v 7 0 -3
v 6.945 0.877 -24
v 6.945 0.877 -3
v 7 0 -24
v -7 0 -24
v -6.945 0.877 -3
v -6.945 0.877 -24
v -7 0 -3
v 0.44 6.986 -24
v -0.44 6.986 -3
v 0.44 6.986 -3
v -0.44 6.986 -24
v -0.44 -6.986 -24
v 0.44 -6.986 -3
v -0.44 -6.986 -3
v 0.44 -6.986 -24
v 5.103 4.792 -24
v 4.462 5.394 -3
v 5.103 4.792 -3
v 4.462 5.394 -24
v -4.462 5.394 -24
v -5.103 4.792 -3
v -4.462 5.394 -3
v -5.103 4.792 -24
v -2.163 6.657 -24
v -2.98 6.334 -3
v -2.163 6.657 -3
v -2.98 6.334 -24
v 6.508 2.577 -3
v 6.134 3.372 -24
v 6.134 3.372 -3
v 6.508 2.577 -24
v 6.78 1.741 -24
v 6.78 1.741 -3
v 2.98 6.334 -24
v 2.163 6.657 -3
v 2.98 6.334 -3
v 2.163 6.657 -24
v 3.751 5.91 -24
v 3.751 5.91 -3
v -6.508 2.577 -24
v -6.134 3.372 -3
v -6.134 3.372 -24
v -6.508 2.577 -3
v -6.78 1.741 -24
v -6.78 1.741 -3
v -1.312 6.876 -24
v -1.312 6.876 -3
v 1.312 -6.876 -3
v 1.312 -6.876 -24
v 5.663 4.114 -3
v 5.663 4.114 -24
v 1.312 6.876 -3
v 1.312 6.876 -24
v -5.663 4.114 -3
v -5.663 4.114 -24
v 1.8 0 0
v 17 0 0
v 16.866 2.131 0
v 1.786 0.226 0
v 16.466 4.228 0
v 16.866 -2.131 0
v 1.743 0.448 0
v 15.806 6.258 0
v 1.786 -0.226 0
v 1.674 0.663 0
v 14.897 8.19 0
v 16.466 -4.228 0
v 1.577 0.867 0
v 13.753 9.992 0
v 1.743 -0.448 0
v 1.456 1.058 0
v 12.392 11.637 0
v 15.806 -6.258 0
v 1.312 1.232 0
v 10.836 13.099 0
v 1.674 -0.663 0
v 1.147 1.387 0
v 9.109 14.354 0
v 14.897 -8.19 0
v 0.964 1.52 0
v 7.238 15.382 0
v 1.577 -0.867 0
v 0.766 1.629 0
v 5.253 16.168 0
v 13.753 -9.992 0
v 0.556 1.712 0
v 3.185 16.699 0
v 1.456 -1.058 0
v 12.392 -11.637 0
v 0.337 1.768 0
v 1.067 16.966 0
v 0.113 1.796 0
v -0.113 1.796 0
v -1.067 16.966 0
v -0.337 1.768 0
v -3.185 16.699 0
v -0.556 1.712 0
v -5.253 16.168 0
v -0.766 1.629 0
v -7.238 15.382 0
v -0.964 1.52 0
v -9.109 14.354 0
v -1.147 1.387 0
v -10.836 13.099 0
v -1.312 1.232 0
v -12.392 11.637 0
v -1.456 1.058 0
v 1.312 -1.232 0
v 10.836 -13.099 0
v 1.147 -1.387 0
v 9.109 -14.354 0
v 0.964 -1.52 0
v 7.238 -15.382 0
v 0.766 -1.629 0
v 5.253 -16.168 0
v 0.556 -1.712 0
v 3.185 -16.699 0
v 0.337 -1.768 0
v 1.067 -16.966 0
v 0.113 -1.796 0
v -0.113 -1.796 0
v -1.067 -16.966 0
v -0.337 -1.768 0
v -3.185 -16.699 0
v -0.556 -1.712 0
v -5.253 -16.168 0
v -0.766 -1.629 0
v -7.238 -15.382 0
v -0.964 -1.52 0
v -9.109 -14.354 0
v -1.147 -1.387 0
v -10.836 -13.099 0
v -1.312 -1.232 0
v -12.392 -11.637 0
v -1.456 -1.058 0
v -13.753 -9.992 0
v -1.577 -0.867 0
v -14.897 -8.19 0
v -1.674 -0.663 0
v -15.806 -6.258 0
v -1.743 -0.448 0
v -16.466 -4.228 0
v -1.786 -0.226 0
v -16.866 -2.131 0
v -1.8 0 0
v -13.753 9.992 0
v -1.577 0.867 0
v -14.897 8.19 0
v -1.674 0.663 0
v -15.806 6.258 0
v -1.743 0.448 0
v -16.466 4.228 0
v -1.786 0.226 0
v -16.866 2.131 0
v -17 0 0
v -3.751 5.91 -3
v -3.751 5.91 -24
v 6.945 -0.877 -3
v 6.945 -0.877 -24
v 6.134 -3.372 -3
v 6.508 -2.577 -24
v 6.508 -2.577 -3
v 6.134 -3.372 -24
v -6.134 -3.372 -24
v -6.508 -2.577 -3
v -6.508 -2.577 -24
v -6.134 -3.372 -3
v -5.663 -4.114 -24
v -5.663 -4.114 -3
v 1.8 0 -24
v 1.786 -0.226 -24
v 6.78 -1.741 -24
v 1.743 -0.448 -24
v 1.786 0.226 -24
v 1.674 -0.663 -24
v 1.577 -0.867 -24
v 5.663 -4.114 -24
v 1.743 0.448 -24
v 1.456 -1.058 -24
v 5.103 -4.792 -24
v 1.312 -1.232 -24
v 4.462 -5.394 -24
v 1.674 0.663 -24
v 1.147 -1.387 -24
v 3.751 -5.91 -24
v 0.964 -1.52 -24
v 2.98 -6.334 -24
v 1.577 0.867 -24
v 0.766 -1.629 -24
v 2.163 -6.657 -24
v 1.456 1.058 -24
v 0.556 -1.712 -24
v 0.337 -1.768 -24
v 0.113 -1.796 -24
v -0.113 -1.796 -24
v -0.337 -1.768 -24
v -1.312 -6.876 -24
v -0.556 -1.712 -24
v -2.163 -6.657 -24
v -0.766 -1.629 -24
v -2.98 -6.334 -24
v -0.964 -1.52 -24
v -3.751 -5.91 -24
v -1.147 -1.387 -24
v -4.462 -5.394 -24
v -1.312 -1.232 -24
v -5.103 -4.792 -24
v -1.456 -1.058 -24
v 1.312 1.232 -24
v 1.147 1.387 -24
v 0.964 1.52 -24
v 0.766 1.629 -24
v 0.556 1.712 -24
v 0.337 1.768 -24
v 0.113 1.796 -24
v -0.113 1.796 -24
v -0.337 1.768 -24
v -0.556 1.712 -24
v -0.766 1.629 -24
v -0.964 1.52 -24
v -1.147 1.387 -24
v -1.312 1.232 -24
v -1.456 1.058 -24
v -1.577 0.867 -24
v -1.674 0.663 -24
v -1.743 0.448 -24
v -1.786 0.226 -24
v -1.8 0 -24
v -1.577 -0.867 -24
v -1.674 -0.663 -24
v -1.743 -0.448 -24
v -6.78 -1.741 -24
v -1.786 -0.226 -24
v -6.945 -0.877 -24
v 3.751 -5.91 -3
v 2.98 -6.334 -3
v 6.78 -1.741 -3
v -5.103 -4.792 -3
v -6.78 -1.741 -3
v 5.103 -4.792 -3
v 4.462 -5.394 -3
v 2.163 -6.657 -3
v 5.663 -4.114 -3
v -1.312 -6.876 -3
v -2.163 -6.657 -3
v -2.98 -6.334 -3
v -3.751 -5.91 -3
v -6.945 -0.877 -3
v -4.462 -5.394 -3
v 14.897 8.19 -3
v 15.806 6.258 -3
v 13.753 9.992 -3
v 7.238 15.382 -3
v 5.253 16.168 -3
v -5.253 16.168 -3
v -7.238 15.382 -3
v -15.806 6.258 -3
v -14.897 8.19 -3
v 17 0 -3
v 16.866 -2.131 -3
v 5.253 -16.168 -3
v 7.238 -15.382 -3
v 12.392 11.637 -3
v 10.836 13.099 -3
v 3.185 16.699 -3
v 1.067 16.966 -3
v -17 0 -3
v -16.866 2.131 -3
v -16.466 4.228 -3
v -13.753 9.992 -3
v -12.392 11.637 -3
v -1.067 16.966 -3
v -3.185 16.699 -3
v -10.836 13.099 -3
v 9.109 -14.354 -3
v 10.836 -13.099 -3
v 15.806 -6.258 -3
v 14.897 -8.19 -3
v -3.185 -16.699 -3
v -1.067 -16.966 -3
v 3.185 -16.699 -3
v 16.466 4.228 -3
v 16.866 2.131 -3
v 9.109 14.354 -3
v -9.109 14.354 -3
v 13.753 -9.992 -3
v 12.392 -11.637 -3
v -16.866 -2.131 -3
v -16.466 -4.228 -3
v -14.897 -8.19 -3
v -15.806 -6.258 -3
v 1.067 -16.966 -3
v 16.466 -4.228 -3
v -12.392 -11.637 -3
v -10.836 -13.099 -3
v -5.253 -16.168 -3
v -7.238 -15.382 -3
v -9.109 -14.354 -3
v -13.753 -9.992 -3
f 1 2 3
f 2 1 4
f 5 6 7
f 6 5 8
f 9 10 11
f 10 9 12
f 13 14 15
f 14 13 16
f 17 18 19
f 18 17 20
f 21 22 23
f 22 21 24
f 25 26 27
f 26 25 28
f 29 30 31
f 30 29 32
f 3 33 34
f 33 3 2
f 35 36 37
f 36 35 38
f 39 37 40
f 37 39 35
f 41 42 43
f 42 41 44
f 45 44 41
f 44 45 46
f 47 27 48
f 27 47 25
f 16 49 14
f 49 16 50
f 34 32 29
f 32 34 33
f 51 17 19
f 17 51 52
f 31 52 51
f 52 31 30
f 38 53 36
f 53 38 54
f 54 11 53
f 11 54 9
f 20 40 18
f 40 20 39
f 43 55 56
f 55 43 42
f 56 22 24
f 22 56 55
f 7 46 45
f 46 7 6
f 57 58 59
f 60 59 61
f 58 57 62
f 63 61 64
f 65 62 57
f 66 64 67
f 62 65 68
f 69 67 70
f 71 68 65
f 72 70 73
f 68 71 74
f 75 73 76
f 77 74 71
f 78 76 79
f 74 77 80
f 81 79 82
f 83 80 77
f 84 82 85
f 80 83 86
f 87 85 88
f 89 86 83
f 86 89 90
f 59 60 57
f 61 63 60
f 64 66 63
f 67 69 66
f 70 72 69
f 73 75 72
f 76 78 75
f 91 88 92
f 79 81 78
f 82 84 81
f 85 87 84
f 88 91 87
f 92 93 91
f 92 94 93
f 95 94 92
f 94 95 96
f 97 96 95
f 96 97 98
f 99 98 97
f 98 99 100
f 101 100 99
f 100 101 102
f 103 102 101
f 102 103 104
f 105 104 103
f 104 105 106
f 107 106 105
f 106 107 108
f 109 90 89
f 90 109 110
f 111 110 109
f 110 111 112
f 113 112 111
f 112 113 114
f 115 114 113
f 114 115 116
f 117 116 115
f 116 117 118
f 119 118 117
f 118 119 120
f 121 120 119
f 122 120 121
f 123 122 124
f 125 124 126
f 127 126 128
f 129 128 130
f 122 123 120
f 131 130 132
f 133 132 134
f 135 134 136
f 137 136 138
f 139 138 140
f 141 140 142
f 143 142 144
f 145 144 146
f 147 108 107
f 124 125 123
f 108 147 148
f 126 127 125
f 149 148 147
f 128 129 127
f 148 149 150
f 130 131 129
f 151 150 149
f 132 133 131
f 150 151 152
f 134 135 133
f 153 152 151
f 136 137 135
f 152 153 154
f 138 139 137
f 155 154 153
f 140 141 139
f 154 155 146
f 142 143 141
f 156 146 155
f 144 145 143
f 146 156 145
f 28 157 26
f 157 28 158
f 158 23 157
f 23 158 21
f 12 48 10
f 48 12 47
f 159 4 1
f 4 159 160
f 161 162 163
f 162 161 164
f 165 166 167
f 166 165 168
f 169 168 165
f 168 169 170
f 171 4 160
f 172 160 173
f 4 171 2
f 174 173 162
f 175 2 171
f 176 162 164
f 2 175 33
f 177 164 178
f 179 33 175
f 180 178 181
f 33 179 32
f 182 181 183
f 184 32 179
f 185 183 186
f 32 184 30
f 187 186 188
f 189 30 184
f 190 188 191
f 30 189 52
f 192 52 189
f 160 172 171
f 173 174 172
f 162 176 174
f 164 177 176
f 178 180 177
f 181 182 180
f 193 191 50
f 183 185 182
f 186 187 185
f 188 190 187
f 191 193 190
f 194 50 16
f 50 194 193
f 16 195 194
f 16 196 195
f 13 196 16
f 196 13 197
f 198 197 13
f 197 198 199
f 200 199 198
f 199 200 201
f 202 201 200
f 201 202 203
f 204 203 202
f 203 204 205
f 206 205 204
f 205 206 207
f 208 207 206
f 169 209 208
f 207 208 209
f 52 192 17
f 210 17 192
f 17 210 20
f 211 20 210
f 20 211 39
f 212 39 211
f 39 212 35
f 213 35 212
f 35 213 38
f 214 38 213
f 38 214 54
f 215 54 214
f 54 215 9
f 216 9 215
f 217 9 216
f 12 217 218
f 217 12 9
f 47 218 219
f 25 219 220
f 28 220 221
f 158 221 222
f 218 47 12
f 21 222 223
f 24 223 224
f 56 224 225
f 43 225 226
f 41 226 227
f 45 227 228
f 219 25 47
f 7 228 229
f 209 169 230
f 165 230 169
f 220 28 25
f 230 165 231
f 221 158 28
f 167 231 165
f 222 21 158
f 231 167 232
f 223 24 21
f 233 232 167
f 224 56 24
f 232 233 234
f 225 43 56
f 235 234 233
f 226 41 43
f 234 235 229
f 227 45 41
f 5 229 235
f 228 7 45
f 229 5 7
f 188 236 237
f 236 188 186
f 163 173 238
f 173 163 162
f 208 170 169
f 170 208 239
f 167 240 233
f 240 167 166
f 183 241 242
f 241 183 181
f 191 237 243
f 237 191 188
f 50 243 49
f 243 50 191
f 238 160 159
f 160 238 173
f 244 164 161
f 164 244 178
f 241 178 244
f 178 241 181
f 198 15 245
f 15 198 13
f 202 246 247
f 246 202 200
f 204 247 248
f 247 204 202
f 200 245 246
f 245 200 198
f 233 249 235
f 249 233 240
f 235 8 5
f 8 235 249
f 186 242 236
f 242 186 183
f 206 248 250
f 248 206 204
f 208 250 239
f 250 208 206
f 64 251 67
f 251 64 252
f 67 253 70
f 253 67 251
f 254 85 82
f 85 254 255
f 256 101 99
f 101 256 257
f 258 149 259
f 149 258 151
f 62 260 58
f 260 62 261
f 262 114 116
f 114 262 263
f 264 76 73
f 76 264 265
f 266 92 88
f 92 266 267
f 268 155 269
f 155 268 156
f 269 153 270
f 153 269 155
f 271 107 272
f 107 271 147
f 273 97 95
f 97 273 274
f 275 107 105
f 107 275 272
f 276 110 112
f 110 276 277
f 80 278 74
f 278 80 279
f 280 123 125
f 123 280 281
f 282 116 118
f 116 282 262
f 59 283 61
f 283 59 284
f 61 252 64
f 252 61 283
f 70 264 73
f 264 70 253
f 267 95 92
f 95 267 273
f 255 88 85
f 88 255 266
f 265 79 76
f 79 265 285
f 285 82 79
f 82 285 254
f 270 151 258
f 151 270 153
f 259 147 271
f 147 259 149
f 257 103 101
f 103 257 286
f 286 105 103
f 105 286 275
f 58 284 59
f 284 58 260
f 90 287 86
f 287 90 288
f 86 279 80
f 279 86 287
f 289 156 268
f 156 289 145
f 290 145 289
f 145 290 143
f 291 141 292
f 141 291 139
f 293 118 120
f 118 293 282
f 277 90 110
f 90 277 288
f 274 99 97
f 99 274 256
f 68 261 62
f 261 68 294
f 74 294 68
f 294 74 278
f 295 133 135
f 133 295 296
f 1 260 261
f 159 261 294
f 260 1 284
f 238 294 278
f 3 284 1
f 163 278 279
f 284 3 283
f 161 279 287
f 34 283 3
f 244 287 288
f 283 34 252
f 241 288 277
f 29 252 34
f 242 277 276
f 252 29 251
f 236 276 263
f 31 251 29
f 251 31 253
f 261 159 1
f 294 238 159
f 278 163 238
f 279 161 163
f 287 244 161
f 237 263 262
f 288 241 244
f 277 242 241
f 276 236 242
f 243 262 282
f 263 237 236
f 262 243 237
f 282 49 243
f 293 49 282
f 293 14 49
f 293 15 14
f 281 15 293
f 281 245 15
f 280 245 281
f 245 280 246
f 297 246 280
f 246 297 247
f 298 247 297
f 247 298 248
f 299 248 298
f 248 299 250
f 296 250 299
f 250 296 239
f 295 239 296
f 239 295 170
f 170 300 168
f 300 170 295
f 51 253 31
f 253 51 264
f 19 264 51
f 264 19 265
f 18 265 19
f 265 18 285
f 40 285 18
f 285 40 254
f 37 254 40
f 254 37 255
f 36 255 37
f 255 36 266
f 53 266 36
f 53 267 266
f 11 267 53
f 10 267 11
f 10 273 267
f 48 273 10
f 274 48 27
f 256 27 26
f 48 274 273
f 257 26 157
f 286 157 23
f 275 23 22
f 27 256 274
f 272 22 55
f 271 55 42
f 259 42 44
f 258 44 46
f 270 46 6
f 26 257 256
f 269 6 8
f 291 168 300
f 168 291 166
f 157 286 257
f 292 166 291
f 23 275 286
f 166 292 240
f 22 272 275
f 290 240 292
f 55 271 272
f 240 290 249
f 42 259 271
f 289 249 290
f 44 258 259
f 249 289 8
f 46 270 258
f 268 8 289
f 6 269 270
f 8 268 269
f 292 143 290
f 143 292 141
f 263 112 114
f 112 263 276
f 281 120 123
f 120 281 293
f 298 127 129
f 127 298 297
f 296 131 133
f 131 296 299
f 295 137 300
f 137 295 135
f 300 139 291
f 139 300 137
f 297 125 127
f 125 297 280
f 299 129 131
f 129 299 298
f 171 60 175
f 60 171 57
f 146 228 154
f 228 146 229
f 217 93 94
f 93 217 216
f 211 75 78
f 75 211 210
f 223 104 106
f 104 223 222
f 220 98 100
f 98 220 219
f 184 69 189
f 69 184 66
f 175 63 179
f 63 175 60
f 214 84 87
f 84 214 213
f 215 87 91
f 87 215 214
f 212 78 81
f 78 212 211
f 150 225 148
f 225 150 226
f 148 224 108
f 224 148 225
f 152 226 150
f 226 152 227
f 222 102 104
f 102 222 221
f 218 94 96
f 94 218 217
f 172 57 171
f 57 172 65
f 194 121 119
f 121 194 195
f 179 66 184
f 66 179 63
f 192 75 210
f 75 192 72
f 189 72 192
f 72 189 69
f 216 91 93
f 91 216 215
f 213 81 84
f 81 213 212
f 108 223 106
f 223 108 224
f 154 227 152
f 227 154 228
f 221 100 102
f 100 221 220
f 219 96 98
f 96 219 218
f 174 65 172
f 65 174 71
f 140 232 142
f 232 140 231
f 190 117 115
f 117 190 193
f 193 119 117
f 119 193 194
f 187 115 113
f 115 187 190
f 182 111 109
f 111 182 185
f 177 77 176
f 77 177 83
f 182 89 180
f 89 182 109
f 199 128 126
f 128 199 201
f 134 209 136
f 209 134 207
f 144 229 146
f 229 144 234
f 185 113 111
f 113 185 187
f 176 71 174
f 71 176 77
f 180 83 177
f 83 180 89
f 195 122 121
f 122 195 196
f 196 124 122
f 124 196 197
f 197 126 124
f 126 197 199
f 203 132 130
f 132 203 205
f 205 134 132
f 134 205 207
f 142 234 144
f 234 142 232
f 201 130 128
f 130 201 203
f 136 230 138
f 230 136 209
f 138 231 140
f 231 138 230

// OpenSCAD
$fn = 50;


difference() {
	union() {
		translate(v = [0, 0, -24.0000000000]) {
			cylinder(h = 24, r = 7.0000000000);
		}
		translate(v = [0, 0, -3.0000000000]) {
			cylinder(h = 3, r = 17.0000000000);
		}
	}
	union() {
		#translate(v = [0, 0, -24]) {
			cylinder(h = 24, r = 1.8000000000);
		}
	}
}
